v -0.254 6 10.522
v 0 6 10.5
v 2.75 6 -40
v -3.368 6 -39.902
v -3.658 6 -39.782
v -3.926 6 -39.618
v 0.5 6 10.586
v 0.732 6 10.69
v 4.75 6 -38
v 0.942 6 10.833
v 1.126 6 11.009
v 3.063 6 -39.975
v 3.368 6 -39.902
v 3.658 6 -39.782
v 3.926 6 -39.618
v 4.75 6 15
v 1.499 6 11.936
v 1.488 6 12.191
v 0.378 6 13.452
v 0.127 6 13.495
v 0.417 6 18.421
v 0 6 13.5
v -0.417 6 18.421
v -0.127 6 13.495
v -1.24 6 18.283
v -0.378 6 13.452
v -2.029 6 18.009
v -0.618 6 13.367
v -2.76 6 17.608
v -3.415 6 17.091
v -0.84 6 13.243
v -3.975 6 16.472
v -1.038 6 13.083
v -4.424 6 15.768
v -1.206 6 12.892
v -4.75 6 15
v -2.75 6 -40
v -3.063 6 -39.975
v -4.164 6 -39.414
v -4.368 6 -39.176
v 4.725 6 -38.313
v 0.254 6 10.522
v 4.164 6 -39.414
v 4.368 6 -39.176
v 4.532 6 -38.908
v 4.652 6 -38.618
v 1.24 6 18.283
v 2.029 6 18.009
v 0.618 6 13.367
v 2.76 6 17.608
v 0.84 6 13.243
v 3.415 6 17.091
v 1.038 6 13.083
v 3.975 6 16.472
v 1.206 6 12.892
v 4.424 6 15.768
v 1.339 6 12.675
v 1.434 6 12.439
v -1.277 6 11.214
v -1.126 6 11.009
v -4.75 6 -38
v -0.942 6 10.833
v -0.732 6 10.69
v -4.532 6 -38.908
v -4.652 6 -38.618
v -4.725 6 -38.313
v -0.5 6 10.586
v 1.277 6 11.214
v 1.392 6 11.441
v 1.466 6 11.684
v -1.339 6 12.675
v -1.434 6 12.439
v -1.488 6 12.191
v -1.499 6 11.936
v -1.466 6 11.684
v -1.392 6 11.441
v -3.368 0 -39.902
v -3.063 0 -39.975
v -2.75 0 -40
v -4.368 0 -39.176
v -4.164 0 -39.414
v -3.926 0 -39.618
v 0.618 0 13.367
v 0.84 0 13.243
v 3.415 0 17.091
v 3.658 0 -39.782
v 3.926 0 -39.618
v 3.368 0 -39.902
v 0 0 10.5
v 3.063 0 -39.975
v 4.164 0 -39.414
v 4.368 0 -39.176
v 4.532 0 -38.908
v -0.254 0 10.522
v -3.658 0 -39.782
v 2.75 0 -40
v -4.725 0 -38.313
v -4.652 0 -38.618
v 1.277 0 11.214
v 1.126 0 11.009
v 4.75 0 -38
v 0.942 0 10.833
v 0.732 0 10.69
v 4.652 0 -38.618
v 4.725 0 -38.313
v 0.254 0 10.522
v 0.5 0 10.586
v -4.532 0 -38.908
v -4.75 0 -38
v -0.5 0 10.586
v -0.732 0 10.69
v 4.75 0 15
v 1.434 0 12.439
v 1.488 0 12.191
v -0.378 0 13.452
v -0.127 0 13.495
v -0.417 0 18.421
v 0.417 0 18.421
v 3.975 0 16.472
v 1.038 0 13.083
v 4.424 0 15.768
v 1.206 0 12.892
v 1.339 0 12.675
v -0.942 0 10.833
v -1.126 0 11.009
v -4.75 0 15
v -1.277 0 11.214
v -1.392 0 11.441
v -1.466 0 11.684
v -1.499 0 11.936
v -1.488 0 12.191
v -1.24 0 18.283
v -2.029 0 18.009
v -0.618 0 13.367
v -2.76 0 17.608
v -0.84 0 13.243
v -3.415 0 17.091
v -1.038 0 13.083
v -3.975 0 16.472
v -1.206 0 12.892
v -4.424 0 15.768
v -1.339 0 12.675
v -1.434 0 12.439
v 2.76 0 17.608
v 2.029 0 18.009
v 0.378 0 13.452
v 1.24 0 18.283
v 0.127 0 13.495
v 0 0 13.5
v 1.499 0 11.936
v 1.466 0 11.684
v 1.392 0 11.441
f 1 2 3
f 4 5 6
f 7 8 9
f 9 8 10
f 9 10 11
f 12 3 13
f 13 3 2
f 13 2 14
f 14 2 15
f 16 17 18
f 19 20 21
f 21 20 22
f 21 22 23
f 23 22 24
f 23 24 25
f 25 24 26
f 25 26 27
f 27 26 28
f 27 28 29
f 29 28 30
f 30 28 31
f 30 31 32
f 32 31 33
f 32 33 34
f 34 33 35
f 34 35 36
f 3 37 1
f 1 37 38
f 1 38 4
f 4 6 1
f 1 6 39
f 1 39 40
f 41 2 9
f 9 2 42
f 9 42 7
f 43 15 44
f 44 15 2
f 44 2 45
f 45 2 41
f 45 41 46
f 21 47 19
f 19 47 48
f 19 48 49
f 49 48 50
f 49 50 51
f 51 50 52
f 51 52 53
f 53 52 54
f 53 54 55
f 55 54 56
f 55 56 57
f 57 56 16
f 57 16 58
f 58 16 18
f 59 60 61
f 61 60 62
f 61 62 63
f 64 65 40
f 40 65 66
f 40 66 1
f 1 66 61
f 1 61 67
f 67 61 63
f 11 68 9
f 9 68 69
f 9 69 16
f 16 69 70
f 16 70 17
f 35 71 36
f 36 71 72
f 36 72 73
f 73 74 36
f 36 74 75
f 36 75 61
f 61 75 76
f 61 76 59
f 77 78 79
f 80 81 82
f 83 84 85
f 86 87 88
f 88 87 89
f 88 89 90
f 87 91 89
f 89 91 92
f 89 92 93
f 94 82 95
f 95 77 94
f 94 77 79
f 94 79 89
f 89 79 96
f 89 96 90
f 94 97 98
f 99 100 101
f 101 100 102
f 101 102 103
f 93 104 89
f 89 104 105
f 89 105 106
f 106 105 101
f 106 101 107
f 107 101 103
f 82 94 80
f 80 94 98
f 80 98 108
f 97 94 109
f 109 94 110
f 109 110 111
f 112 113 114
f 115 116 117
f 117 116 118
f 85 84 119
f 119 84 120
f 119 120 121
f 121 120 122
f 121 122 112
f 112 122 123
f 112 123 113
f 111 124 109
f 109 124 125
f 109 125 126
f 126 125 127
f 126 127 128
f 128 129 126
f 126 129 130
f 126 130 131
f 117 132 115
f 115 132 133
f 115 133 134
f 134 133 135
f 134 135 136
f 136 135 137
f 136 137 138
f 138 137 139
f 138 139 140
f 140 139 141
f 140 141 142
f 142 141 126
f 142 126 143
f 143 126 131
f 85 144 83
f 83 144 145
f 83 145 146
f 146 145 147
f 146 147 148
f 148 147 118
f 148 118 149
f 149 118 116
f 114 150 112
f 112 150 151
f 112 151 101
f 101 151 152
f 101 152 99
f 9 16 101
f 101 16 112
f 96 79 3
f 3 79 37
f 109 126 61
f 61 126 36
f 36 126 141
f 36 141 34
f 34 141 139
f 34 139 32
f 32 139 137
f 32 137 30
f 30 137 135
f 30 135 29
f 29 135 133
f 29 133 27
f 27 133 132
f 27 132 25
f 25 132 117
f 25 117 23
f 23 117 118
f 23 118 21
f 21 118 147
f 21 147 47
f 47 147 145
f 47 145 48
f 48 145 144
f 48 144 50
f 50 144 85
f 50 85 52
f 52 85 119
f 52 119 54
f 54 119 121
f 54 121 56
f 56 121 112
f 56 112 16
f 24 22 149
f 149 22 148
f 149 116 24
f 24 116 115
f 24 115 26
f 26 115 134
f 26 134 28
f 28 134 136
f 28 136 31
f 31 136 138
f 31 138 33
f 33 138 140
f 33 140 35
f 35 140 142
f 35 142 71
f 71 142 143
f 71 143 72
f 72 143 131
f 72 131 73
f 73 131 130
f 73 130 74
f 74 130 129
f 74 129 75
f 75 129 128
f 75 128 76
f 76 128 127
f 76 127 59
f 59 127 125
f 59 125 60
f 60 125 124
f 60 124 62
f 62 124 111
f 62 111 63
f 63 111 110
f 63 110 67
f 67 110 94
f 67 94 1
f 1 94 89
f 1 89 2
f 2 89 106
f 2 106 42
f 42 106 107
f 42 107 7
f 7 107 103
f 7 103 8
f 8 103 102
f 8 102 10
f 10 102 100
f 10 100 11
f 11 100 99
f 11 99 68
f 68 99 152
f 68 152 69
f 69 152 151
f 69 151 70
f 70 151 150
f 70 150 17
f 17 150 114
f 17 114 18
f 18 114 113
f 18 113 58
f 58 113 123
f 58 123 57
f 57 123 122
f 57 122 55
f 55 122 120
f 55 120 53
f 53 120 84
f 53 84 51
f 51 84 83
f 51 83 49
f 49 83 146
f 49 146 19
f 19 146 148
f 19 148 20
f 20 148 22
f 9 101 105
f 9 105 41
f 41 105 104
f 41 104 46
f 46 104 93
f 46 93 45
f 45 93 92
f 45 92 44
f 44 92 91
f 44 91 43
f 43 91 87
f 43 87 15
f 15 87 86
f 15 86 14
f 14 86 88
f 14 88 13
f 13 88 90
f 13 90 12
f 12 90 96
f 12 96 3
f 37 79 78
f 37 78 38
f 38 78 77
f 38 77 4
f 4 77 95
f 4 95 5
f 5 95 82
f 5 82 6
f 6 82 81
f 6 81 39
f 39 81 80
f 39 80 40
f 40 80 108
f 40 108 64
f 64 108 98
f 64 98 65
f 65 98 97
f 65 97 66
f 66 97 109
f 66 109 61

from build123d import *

# Parameters (mm, degrees)
ESQUISSE1_R        = 1.5
BOSS_EXTRU_1_DEPTH = 6
CONG_1_R           = 2


with BuildPart() as part:
    # Esquisse1 → Boss.-Extru.1 (new body)
    with BuildSketch(Plane(origin=(0, 0, 0), x_dir=(1, 0, 0), z_dir=(0, 1, 0))):
        with BuildLine():
            Line((4.75, 40), (-4.75, 40))
            Line((-4.75, 40), (-4.75, -15))
            ThreePointArc((-4.75, -15), (0, -18.4387505), (4.75, -15))
            Line((4.75, -15), (4.75, 40))
        make_face()
        with Locations((0, -12)):
            Circle(ESQUISSE1_R, mode=Mode.SUBTRACT)
    extrude(amount=BOSS_EXTRU_1_DEPTH)

    # Congé1
    cong_1_edges = [part.edges().sort_by_distance(p)[0] for p in [
        (-4.75, 3, -40),
        (4.75, 3, -40),
    ]]
    fillet(cong_1_edges, radius=CONG_1_R)


solid = part.part
